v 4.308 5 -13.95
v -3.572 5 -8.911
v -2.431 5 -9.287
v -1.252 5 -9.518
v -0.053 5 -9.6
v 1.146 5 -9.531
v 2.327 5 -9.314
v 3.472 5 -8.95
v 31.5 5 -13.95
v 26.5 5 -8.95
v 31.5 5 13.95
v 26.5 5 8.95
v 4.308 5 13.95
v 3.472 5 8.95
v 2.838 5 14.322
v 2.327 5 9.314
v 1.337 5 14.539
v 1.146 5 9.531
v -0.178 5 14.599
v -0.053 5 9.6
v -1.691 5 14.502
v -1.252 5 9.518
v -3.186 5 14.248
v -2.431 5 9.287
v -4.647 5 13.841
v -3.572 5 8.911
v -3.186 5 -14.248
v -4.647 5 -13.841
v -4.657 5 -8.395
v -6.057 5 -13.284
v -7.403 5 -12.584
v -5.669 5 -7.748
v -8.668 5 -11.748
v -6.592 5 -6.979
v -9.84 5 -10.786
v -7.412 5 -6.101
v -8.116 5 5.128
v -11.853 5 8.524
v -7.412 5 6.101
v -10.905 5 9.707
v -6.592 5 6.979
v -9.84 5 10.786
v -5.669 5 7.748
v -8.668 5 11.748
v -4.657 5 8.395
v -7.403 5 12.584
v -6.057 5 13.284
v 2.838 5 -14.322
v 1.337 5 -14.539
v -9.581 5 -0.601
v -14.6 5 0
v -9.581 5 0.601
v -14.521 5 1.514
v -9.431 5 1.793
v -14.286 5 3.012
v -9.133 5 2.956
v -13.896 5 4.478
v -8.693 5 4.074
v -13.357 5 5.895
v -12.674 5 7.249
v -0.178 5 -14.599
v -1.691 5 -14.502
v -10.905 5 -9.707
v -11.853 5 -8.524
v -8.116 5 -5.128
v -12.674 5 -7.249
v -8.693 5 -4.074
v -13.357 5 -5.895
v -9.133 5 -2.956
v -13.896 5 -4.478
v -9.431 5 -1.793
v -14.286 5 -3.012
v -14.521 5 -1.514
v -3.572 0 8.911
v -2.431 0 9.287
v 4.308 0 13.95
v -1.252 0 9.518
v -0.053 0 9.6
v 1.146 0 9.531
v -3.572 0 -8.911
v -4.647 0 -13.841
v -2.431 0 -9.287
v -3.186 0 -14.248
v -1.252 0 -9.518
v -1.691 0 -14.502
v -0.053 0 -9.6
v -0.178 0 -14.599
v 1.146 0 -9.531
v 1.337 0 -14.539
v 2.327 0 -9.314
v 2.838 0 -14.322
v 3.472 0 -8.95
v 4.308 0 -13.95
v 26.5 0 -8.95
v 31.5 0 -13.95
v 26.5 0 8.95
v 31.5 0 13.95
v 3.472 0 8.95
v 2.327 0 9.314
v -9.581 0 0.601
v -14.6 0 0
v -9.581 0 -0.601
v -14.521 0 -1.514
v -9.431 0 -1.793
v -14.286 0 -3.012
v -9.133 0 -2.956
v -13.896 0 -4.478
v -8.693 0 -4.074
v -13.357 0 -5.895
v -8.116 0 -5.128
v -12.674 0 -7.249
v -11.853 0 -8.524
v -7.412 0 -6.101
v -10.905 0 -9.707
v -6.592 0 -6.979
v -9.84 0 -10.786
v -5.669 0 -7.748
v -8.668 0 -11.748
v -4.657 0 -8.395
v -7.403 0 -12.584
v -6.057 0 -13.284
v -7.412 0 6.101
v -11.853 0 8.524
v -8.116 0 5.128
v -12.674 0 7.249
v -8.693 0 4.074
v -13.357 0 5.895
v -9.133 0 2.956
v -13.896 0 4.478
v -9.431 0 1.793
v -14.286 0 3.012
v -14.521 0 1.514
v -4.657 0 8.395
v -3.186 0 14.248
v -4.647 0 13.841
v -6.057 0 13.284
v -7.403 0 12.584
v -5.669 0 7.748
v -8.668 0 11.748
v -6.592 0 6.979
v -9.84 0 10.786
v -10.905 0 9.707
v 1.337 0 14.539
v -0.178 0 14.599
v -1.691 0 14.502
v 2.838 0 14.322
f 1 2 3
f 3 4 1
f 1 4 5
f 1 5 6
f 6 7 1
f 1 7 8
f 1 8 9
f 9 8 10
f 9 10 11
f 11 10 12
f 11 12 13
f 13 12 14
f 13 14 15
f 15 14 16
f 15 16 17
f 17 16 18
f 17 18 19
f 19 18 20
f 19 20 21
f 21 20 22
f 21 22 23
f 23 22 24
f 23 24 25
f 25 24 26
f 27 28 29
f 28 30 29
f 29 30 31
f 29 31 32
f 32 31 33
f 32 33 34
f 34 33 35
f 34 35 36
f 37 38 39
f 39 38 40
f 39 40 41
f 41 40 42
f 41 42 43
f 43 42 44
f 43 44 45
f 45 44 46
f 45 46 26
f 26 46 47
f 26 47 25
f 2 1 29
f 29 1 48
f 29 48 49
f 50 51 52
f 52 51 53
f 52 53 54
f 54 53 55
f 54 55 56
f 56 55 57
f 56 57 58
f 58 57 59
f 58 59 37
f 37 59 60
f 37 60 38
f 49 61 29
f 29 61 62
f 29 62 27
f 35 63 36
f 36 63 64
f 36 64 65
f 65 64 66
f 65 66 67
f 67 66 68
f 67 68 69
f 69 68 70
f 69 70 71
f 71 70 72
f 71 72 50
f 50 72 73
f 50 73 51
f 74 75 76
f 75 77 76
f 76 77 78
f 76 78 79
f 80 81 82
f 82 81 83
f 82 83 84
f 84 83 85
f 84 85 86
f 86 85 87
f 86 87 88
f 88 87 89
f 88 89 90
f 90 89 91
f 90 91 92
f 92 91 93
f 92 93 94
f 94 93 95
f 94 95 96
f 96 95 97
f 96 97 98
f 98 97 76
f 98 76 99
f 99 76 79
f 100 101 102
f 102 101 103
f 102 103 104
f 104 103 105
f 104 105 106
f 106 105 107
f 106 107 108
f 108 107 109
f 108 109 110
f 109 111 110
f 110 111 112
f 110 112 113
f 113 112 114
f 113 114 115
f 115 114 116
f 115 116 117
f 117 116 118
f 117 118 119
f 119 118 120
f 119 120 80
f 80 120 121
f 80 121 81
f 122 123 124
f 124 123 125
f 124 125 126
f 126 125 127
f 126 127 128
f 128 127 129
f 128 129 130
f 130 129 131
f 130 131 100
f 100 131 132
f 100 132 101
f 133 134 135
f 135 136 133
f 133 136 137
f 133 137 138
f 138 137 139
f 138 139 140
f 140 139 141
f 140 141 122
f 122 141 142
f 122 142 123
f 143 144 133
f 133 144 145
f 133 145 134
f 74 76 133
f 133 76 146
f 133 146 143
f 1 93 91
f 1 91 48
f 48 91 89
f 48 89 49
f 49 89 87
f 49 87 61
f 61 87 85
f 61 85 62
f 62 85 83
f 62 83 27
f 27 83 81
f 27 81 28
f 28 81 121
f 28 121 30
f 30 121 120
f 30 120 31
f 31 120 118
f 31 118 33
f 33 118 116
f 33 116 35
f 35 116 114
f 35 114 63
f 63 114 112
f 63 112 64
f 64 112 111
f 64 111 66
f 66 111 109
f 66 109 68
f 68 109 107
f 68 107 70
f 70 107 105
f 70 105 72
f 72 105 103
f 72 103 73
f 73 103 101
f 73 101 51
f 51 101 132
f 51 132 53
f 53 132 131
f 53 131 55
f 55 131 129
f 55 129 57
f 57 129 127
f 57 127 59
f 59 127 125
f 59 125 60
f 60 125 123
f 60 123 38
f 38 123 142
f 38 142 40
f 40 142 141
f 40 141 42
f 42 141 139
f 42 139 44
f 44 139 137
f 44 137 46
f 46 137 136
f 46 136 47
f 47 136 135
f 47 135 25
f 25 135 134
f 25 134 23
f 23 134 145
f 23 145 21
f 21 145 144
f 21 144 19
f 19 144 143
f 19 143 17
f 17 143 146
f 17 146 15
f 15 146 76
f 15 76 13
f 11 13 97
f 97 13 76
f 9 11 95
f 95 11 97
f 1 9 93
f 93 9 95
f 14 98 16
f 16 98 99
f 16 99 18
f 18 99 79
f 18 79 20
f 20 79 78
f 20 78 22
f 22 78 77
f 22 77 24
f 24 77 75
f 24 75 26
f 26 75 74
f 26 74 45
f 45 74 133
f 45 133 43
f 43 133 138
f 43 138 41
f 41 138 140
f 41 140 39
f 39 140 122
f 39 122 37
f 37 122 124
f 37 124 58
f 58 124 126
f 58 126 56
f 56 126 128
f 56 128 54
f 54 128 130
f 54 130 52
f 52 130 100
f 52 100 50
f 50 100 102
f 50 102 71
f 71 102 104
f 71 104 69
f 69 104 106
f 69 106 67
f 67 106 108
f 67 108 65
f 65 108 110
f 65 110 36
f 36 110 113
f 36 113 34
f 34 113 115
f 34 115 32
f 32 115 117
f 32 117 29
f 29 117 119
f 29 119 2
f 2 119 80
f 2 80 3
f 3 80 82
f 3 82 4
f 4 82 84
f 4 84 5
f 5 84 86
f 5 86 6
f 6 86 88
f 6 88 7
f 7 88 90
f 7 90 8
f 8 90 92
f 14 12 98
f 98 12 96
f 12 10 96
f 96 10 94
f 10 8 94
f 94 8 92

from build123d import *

# Parameters (mm, degrees)
BOSS_EXTRUDE1_DEPTH = 5


with BuildPart() as part:
    # Sketch1 → Boss-Extrude1 (new body)
    with BuildSketch(Plane(origin=(0, 0, 0), x_dir=(1, 0, 0), z_dir=(0, 1, 0))):
        with BuildLine():
            Line((4.307841687, -13.95), (31.5, -13.95))
            Line((31.5, -13.95), (31.5, 13.95))
            Line((31.5, 13.95), (4.307841687, 13.95))
            ThreePointArc((4.307841687, 13.95), (-14.6, 0), (4.307841687, -13.95))
        make_face()
        with BuildLine():
            Line((3.472391107, -8.95), (26.5, -8.95))
            Line((26.5, -8.95), (26.5, 8.95))
            Line((26.5, 8.95), (3.472391107, 8.95))
            ThreePointArc((3.472391107, 8.95), (-9.6, 0), (3.472391107, -8.95))
        make_face(mode=Mode.SUBTRACT)
    extrude(amount=BOSS_EXTRUDE1_DEPTH)


solid = part.part
